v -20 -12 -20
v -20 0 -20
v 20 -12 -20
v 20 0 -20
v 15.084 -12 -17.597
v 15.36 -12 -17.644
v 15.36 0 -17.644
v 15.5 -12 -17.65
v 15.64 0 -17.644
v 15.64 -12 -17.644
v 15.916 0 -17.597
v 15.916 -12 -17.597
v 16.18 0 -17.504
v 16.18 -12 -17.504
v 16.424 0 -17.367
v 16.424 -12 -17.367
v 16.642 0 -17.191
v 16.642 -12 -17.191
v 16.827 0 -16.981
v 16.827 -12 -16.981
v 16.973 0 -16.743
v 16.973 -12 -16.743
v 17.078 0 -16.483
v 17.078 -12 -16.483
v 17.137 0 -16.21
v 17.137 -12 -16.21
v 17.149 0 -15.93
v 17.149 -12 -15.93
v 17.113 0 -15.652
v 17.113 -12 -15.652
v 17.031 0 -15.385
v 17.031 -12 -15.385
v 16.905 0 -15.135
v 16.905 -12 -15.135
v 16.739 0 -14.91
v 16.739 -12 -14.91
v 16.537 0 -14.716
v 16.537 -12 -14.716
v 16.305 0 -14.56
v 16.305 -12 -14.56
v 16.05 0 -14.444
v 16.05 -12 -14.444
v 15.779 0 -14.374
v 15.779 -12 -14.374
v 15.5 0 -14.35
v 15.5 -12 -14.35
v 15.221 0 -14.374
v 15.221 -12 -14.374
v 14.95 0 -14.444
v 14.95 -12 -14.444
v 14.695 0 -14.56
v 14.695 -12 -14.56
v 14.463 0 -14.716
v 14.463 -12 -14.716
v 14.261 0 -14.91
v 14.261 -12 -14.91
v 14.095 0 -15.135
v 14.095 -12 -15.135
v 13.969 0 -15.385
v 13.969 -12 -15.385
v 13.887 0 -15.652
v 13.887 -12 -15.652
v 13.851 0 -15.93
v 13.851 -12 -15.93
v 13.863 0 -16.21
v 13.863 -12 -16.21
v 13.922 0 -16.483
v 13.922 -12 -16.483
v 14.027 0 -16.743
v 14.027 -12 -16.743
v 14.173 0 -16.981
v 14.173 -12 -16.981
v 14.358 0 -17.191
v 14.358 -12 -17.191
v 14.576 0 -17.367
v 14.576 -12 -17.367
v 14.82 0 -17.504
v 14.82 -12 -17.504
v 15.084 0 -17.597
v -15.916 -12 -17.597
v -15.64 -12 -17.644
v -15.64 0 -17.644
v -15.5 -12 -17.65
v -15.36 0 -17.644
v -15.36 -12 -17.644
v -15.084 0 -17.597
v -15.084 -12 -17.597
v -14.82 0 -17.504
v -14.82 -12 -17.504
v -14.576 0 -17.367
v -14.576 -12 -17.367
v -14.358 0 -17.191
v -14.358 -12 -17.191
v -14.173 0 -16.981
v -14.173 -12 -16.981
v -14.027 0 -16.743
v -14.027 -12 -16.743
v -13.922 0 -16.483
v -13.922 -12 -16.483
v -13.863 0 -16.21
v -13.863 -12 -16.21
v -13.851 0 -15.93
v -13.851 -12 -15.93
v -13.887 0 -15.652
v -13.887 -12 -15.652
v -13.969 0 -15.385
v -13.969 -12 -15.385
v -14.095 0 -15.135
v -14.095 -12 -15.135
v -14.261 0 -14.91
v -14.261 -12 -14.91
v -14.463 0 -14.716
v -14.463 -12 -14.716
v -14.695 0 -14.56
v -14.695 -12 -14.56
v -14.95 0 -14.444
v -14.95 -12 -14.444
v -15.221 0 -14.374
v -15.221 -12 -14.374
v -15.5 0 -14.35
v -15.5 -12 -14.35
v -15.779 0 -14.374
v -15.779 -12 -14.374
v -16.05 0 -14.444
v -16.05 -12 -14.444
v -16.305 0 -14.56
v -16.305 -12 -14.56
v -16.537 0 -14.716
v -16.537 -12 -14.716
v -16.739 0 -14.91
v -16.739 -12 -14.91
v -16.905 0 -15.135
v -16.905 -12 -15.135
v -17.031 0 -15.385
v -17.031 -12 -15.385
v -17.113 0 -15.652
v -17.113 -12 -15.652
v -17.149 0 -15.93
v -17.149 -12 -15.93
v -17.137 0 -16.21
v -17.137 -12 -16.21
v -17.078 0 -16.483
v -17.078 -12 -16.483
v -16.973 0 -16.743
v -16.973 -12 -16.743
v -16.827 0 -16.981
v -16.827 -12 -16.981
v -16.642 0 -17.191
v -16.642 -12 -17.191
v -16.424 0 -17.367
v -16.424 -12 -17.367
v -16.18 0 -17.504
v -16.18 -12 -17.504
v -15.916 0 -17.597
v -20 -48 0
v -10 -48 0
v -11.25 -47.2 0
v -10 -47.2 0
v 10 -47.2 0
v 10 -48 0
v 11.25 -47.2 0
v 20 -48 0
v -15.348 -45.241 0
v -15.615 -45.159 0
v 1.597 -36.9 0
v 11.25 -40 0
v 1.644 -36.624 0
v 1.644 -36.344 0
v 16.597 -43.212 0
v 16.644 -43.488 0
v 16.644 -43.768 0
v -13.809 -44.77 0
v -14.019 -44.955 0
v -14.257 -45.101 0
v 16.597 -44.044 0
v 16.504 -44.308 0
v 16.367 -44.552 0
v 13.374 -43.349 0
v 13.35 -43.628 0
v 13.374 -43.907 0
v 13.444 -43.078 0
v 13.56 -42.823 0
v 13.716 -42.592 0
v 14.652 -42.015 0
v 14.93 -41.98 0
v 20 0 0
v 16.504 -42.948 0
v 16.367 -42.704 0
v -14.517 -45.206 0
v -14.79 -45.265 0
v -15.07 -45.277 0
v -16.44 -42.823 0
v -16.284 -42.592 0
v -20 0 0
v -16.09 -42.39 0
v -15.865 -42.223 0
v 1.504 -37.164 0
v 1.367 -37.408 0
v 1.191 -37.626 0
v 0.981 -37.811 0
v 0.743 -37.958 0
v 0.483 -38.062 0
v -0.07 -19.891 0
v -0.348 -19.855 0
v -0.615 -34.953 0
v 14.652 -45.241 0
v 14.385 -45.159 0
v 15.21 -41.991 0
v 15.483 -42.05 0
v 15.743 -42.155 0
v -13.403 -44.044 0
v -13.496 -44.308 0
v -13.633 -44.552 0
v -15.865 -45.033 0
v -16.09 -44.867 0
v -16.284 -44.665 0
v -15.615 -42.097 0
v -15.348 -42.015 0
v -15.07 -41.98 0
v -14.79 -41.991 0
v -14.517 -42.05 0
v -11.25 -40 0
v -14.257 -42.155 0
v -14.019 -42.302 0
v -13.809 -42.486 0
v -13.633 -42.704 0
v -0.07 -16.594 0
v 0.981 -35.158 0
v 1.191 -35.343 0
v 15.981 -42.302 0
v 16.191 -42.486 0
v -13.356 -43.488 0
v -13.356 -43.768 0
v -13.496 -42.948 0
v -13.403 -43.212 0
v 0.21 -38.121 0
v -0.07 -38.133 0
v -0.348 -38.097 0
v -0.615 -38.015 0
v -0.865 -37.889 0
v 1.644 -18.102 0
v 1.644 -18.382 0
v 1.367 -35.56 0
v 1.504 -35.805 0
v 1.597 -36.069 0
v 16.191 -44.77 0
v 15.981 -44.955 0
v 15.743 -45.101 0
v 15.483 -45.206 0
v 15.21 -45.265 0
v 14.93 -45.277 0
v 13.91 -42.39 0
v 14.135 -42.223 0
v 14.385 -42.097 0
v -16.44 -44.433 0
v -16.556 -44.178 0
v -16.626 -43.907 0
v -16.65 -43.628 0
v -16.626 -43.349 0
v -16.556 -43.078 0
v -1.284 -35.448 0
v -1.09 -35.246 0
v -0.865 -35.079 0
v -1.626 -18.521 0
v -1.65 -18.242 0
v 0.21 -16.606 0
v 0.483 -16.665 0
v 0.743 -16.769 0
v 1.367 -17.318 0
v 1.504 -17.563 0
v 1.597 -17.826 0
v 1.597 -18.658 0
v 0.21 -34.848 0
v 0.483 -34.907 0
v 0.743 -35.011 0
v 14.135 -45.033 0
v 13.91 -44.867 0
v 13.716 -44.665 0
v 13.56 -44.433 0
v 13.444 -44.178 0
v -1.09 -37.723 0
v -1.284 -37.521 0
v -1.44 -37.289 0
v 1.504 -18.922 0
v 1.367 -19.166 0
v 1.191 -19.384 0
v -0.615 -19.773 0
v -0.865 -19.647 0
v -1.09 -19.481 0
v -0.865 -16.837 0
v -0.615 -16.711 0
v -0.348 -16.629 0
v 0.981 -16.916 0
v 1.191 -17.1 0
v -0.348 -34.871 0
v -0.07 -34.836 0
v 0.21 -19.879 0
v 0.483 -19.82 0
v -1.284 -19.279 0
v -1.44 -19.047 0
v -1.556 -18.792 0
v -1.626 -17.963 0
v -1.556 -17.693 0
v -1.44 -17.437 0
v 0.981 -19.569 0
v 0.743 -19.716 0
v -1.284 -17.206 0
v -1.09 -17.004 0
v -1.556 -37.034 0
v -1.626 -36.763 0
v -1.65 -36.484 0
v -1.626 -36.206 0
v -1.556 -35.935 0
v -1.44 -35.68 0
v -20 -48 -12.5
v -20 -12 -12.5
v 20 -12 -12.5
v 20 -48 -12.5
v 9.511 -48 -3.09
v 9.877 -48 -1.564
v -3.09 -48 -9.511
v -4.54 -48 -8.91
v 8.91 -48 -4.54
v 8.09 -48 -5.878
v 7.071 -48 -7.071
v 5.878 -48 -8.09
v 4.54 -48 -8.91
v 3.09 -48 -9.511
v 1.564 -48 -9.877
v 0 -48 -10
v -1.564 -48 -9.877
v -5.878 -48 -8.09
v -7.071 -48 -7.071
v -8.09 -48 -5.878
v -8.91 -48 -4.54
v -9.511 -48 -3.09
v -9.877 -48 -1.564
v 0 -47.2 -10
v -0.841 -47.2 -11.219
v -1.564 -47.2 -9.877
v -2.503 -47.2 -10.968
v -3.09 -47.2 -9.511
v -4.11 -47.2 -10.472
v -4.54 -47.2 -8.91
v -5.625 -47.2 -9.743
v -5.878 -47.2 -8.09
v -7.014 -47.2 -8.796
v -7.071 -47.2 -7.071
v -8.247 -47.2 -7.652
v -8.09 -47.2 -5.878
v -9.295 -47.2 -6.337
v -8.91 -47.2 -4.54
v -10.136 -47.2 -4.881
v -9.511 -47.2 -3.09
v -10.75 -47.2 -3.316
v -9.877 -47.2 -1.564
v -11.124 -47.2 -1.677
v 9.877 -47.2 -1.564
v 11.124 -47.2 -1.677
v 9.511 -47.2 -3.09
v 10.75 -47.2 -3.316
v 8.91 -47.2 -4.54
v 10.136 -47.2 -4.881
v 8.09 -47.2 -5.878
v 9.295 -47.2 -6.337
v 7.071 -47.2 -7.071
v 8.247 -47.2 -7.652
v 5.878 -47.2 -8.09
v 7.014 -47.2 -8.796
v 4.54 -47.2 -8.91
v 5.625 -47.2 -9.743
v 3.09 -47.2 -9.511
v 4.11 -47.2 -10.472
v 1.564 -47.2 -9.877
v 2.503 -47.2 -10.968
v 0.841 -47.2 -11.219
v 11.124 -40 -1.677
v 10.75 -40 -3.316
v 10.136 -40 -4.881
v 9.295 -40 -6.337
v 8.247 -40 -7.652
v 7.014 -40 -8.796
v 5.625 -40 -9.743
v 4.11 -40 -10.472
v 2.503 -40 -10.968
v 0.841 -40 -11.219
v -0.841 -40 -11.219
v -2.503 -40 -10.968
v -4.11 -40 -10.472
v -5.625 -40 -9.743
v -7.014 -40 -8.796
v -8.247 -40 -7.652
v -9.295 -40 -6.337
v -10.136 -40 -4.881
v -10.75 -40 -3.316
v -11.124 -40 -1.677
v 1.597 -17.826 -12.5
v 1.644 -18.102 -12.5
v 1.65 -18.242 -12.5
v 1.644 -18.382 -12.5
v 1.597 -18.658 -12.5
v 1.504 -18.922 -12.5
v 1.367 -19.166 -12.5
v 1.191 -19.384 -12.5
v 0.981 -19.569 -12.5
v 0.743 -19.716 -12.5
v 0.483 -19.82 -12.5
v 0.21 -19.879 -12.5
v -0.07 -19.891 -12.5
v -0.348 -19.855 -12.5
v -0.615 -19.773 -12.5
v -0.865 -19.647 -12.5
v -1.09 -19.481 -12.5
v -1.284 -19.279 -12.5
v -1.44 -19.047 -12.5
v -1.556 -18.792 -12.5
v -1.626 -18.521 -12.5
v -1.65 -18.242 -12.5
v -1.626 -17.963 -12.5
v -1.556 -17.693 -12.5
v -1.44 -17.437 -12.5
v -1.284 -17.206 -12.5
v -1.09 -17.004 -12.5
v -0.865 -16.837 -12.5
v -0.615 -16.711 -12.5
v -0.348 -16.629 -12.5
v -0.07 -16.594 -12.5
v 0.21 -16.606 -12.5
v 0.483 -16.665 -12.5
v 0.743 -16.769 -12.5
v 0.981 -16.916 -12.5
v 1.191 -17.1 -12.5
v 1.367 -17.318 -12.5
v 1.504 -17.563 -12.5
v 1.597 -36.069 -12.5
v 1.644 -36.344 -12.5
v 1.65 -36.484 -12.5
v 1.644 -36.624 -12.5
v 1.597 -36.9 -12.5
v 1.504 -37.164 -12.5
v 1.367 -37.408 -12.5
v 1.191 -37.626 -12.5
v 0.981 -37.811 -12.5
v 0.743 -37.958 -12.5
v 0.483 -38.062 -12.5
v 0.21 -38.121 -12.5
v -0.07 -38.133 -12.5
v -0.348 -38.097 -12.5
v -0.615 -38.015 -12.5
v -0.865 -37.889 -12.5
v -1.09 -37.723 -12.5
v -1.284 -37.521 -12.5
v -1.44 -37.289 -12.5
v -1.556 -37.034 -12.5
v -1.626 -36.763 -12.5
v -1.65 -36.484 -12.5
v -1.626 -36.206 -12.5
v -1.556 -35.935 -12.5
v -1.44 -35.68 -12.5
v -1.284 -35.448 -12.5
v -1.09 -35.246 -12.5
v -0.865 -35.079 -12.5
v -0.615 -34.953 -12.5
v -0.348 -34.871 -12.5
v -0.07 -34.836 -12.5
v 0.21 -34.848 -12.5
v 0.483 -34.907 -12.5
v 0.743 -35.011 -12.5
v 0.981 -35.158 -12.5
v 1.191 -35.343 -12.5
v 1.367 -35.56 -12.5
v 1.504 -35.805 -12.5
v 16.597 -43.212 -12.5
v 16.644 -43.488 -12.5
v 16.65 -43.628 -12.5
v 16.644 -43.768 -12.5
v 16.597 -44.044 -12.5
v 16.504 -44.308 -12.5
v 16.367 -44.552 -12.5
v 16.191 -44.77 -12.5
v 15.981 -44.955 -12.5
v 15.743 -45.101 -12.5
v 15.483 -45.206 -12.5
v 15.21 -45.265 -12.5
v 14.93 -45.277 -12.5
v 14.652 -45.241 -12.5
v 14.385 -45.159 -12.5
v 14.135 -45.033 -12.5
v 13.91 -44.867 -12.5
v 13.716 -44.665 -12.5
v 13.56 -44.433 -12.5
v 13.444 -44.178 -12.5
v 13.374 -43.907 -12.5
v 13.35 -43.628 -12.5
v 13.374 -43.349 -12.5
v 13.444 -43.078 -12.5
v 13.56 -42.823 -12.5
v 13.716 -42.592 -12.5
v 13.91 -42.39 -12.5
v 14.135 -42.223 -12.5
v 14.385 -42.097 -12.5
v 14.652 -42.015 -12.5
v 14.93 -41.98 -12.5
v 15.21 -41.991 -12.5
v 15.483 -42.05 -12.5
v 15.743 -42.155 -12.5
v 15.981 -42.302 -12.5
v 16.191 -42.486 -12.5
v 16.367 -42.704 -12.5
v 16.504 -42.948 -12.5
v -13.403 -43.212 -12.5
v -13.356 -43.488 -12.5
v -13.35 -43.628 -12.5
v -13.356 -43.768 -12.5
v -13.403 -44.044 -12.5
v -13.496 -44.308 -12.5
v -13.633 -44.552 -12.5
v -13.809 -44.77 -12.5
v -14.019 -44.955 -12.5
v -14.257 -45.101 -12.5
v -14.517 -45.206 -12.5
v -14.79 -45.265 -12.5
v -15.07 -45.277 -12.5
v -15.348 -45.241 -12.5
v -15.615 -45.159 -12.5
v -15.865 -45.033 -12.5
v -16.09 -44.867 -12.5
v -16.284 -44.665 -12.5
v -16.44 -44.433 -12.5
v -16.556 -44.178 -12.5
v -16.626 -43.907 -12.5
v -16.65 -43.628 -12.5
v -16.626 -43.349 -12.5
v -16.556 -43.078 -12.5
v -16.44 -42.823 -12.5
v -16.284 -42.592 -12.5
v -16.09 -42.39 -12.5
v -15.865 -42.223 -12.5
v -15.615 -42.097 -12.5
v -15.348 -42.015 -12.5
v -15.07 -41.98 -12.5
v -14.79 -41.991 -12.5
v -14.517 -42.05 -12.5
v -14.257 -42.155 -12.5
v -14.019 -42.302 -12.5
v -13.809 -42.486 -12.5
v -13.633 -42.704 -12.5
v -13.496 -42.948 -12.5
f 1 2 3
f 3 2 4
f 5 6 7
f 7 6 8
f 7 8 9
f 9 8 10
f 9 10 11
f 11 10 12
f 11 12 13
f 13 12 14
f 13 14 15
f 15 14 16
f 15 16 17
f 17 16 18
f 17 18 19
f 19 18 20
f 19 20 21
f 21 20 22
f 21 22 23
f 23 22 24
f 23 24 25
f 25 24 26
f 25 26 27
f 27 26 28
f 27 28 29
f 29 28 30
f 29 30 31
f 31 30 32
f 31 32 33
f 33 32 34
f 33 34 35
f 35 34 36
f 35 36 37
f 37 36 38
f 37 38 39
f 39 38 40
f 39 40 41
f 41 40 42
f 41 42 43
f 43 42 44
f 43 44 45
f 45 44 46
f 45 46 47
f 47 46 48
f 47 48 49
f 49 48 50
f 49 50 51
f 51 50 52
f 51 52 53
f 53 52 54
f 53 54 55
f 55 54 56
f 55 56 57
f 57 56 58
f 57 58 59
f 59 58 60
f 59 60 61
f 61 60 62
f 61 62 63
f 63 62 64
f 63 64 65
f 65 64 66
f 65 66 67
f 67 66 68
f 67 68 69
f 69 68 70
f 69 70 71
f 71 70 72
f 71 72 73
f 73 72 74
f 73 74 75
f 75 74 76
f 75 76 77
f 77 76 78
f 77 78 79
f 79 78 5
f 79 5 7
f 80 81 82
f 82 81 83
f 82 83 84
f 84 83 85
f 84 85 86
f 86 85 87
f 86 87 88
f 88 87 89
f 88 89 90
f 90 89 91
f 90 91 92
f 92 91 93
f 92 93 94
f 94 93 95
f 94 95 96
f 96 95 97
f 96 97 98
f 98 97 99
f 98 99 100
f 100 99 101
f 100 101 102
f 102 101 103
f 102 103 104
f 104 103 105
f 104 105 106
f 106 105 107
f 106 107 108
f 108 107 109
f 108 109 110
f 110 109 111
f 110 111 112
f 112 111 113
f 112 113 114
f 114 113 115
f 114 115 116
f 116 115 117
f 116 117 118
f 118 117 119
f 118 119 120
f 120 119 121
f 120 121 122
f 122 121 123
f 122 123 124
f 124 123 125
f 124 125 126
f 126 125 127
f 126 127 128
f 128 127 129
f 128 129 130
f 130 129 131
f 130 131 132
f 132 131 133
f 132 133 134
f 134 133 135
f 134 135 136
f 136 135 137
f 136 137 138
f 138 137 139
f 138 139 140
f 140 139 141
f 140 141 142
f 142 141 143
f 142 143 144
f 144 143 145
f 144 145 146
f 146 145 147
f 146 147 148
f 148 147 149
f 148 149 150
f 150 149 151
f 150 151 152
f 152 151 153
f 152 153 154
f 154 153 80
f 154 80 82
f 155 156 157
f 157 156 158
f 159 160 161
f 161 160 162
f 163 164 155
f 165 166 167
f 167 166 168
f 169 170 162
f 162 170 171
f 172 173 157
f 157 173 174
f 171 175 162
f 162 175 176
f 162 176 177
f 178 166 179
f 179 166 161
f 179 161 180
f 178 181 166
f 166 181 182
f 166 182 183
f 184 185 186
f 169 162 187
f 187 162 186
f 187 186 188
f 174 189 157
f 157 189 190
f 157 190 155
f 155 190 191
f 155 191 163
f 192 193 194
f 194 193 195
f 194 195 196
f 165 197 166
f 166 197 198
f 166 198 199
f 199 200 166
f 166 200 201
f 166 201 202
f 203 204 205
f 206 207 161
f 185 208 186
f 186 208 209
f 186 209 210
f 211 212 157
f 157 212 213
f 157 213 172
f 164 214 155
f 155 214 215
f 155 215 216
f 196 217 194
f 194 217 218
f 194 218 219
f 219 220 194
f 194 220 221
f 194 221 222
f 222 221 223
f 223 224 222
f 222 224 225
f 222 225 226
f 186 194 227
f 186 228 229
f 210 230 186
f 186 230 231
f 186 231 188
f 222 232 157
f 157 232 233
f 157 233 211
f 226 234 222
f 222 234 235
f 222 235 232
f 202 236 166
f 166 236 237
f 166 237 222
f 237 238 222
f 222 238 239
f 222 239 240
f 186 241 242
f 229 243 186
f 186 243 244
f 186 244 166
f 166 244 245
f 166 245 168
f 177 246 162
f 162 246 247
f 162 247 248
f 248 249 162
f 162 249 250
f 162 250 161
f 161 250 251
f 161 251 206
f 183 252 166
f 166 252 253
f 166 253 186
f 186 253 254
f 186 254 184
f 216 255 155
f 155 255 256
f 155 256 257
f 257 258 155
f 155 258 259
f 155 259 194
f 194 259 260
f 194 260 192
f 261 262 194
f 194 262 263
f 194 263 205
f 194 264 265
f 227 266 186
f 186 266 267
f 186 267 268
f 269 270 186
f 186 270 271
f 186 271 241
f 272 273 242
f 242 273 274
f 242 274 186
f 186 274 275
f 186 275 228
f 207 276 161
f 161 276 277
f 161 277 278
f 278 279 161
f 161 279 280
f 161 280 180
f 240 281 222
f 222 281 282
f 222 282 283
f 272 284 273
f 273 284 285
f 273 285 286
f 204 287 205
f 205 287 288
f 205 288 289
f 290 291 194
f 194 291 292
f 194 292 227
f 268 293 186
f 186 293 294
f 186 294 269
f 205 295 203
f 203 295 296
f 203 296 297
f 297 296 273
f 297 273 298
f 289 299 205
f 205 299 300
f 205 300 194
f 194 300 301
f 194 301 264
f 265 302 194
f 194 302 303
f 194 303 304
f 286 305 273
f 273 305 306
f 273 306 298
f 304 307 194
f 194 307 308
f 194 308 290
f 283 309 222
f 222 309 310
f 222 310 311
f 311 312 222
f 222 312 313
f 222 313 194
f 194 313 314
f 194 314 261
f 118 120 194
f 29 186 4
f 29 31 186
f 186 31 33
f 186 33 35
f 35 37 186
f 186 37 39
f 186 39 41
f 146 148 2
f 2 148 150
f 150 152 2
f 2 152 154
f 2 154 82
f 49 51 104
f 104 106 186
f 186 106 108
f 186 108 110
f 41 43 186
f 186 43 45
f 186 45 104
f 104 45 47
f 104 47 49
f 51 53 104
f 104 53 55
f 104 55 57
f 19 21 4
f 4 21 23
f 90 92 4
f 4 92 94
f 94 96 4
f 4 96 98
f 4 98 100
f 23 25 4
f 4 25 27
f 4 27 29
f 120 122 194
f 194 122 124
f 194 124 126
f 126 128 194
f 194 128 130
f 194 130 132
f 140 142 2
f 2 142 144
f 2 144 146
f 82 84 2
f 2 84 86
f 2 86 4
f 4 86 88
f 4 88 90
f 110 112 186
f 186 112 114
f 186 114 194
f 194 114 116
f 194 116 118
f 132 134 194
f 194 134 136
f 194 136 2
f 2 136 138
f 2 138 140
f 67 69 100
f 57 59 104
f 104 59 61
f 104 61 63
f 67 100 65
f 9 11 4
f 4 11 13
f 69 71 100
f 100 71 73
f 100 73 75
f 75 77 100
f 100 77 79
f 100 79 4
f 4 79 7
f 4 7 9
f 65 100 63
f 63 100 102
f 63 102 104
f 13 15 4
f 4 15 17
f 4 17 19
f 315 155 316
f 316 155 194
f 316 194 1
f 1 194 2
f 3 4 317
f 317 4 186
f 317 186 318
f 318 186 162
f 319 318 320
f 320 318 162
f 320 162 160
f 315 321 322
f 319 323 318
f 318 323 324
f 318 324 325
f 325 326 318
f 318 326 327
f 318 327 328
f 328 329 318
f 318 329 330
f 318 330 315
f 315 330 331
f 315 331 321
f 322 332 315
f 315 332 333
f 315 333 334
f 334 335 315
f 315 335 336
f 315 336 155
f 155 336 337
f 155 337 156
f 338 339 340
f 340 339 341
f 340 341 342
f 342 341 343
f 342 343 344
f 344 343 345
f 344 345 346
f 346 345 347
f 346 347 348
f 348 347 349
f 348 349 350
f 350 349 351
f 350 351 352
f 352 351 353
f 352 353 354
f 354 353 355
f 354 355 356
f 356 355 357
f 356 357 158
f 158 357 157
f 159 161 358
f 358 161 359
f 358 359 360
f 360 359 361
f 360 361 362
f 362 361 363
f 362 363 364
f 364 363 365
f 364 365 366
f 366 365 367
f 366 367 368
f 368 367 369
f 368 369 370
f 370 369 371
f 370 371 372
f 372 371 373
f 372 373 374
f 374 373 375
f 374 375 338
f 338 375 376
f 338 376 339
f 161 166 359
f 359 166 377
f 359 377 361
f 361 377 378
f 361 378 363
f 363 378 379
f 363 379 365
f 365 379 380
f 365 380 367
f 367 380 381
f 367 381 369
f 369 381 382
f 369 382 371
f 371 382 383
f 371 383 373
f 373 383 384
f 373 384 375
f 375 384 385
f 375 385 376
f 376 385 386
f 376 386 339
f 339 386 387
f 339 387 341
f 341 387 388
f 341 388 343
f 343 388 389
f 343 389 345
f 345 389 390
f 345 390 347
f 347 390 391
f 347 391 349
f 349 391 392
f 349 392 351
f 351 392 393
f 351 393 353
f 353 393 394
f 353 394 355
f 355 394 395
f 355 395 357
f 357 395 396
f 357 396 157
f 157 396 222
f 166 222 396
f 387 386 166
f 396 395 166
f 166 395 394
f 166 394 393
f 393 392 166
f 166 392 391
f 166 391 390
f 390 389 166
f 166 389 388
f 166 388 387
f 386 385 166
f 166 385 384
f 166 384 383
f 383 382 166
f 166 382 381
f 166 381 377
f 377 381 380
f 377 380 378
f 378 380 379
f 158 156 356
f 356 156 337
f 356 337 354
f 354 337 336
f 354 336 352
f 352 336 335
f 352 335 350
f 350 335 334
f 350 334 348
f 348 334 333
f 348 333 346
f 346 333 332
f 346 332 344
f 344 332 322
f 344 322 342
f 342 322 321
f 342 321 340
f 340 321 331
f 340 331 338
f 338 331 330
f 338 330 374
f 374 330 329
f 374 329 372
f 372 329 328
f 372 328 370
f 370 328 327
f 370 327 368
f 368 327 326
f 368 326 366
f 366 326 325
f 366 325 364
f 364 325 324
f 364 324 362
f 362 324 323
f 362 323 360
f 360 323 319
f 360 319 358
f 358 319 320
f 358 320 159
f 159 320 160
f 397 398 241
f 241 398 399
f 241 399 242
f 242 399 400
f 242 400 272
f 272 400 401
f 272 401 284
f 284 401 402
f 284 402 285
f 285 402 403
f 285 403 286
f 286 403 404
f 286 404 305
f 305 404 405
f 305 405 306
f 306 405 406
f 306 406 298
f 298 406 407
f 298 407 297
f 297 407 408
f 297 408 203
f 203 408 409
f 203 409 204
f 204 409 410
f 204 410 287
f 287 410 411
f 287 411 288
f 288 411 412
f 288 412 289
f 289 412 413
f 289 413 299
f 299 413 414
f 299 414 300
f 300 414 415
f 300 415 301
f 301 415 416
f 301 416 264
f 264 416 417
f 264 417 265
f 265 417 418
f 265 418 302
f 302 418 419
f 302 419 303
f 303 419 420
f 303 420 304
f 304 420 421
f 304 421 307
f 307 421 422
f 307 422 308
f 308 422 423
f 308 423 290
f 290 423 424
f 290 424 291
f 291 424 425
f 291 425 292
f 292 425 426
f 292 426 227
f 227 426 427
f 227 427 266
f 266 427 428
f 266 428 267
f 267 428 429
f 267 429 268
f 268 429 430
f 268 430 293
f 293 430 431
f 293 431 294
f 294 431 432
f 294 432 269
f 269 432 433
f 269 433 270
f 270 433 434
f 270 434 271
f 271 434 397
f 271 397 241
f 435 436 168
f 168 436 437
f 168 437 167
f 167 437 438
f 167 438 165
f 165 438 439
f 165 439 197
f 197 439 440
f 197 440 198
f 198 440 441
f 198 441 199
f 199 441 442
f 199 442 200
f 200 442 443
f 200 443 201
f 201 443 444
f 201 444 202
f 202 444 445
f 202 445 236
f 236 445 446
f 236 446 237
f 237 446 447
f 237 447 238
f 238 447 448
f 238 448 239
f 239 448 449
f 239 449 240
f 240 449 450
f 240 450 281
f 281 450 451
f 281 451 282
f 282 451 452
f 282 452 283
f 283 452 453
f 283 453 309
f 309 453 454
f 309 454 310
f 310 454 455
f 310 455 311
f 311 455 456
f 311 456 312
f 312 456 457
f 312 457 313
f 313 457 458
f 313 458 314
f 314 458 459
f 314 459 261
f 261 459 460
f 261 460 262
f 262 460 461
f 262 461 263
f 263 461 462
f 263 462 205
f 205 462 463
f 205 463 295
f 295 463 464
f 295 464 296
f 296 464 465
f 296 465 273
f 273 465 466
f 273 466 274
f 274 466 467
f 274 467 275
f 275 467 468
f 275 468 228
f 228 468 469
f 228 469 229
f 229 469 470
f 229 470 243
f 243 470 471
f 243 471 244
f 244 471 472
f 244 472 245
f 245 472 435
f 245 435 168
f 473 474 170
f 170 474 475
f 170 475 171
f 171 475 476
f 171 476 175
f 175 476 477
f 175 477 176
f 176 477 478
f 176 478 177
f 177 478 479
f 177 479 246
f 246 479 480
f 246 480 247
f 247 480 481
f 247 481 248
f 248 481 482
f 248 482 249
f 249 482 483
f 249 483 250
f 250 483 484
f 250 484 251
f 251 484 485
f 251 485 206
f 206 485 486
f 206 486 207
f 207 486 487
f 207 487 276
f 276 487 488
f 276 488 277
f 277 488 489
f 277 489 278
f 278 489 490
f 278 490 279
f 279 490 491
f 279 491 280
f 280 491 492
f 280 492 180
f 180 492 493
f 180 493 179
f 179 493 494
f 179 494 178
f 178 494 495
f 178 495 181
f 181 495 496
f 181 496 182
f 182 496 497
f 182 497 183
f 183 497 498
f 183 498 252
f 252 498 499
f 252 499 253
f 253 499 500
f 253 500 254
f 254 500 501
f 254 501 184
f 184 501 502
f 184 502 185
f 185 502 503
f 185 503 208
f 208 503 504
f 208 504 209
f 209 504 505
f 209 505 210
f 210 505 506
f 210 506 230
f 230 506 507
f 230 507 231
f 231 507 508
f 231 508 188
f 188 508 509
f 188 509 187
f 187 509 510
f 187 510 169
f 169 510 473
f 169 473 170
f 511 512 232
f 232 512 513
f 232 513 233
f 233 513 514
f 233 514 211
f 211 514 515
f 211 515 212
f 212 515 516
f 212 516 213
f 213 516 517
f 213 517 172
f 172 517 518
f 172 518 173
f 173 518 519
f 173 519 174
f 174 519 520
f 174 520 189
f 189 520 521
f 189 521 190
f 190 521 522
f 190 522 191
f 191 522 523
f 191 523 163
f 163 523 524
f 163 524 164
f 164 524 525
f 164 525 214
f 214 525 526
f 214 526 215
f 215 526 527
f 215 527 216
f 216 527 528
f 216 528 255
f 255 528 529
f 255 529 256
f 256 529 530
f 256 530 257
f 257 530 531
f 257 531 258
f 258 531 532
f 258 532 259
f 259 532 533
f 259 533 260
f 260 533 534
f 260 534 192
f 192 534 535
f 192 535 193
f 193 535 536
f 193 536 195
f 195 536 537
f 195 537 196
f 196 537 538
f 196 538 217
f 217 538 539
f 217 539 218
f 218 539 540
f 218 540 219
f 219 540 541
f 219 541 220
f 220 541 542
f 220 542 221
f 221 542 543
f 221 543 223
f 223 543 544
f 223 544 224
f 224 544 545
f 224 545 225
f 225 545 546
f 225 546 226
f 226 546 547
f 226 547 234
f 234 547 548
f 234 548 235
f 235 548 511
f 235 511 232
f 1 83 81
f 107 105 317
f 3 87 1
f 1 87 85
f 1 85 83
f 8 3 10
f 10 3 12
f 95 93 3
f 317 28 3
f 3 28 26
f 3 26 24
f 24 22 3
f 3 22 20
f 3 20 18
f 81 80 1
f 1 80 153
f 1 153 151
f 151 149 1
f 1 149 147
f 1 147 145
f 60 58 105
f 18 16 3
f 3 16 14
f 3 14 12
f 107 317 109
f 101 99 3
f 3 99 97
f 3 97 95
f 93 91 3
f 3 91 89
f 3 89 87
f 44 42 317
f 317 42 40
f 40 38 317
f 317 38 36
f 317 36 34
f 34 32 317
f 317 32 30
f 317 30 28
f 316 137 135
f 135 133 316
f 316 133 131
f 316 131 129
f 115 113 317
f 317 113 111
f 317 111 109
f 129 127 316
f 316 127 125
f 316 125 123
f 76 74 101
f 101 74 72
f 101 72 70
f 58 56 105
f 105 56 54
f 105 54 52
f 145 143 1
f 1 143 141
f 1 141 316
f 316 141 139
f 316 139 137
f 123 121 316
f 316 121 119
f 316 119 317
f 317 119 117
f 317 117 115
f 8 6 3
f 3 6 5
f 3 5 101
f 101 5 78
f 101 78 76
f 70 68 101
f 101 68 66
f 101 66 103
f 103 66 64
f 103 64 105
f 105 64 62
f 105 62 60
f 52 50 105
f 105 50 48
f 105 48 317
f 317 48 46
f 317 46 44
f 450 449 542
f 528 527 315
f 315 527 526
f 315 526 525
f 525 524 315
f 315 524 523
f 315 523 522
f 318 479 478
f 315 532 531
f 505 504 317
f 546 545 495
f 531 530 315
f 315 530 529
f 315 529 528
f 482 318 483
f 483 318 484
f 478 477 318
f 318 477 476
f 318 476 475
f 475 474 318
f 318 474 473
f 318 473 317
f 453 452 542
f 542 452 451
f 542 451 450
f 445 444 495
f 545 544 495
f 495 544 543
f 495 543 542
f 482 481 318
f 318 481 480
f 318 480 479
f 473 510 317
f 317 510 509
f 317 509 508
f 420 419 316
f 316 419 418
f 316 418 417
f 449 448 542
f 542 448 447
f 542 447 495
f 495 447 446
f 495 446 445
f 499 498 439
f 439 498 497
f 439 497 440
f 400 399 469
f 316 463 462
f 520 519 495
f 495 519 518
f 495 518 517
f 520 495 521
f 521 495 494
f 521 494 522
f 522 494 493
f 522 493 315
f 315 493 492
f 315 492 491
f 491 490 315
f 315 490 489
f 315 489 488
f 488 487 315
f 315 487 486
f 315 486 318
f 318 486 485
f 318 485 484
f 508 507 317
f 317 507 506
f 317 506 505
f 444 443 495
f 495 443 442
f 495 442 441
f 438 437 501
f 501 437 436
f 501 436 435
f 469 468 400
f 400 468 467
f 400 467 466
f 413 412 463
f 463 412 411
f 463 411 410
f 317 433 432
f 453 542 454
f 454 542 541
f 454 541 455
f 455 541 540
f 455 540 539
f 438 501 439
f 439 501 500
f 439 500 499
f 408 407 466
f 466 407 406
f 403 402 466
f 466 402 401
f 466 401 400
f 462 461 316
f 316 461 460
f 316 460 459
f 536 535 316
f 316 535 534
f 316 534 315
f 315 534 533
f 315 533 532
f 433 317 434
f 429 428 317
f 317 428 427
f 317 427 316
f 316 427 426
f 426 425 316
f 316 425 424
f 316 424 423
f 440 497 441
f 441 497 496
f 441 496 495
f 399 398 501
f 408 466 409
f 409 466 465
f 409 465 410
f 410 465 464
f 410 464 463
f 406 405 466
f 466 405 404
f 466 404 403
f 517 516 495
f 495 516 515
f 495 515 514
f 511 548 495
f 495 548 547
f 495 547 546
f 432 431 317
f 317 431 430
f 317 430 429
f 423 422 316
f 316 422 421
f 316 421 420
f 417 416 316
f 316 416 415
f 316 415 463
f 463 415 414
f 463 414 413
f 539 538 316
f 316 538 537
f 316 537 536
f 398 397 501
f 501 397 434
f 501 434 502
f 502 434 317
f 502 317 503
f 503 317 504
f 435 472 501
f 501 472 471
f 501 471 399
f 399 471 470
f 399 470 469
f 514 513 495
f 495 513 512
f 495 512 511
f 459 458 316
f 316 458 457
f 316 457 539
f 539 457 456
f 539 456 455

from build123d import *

# Parameters (mm, degrees)
SKETCH1_W             = 40
SKETCH1_H             = 40
BOSS_EXTRUDE1_DEPTH   = 48
M4X0_7_TAPPED_HOLE1_D = 3.3
SKETCH10_W            = 40
SKETCH10_H            = 20
CUT_EXTRUDE4_DEPTH    = 49
SKETCH11_W            = 11.25
SKETCH11_H            = 7.2
CUT_EXTRUDE5_REACH    = 50
SKETCH12_R            = 10
M4X0_7_TAPPED_HOLE2_D = 3.3
SKETCH15_W            = 40
SKETCH15_H            = 7.5
CUT_EXTRUDE6_DEPTH    = 36


with BuildPart() as part:
    # Sketch1 → Boss-Extrude1 (new body)
    with BuildSketch(Plane(origin=(0, 0, 0), x_dir=(1, 0, 0), z_dir=(0, 1, 0))):
        Rectangle(SKETCH1_W, SKETCH1_H)
    extrude(amount=-BOSS_EXTRUDE1_DEPTH)

    # M4x0.7 Tapped Hole1 (through all)
    with Locations(Plane(origin=(0, 0, 0), x_dir=(1, 0, 0), z_dir=(0, 1, 0))):
        with Locations((-15.5, 16), (15.5, 16), (15.5, -16), (-15.5, -16)):
            Hole(M4X0_7_TAPPED_HOLE1_D / 2)

    # Sketch10 → Cut-Extrude4 (cut, through all)
    with BuildSketch(Plane(origin=(0, 0, 0), x_dir=(1, 0, 0), z_dir=(0, 1, 0))):
        with Locations((0, -10)):
            Rectangle(SKETCH10_W, SKETCH10_H)
    extrude(amount=-CUT_EXTRUDE4_DEPTH, mode=Mode.SUBTRACT)

    # Sketch11 → Cut-Revolve2 (revolve, cut)
    with BuildSketch(Plane.XY):
        with Locations((5.625, -43.6)):
            Rectangle(SKETCH11_W, SKETCH11_H)
    revolve(axis=Axis((0, 0, 0), (0, -1, 0)), mode=Mode.SUBTRACT)

    # Sketch12 → Cut-Extrude5 (cut, up to next)
    with BuildSketch(Plane.XZ.offset(48), mode=Mode.PRIVATE) as cut_extrude5_sk1:
        Circle(SKETCH12_R)
    cut_extrude5_tool1 = extrude(cut_extrude5_sk1.sketch, amount=-CUT_EXTRUDE5_REACH, mode=Mode.PRIVATE) & part.part
    add(cut_extrude5_tool1.solids().sort_by_distance((0, -48, 0))[0], mode=Mode.SUBTRACT)

    # M4x0.7 Tapped Hole2 (through all)
    with Locations(Plane(origin=(0, 0, -20), x_dir=(-1, 0, 0), z_dir=(0, 0, -1))):
        with Locations((15, -43.628125), (-15, -43.628125), (0, -36.484375), (0, -18.2421875)):
            Hole(M4X0_7_TAPPED_HOLE2_D / 2)

    # Sketch15 → Cut-Extrude6 (cut)
    with BuildSketch(Plane.XZ.offset(48)):
        with Locations((0, -16.25)):
            Rectangle(SKETCH15_W, SKETCH15_H)
    extrude(amount=-CUT_EXTRUDE6_DEPTH, mode=Mode.SUBTRACT)


solid = part.part
